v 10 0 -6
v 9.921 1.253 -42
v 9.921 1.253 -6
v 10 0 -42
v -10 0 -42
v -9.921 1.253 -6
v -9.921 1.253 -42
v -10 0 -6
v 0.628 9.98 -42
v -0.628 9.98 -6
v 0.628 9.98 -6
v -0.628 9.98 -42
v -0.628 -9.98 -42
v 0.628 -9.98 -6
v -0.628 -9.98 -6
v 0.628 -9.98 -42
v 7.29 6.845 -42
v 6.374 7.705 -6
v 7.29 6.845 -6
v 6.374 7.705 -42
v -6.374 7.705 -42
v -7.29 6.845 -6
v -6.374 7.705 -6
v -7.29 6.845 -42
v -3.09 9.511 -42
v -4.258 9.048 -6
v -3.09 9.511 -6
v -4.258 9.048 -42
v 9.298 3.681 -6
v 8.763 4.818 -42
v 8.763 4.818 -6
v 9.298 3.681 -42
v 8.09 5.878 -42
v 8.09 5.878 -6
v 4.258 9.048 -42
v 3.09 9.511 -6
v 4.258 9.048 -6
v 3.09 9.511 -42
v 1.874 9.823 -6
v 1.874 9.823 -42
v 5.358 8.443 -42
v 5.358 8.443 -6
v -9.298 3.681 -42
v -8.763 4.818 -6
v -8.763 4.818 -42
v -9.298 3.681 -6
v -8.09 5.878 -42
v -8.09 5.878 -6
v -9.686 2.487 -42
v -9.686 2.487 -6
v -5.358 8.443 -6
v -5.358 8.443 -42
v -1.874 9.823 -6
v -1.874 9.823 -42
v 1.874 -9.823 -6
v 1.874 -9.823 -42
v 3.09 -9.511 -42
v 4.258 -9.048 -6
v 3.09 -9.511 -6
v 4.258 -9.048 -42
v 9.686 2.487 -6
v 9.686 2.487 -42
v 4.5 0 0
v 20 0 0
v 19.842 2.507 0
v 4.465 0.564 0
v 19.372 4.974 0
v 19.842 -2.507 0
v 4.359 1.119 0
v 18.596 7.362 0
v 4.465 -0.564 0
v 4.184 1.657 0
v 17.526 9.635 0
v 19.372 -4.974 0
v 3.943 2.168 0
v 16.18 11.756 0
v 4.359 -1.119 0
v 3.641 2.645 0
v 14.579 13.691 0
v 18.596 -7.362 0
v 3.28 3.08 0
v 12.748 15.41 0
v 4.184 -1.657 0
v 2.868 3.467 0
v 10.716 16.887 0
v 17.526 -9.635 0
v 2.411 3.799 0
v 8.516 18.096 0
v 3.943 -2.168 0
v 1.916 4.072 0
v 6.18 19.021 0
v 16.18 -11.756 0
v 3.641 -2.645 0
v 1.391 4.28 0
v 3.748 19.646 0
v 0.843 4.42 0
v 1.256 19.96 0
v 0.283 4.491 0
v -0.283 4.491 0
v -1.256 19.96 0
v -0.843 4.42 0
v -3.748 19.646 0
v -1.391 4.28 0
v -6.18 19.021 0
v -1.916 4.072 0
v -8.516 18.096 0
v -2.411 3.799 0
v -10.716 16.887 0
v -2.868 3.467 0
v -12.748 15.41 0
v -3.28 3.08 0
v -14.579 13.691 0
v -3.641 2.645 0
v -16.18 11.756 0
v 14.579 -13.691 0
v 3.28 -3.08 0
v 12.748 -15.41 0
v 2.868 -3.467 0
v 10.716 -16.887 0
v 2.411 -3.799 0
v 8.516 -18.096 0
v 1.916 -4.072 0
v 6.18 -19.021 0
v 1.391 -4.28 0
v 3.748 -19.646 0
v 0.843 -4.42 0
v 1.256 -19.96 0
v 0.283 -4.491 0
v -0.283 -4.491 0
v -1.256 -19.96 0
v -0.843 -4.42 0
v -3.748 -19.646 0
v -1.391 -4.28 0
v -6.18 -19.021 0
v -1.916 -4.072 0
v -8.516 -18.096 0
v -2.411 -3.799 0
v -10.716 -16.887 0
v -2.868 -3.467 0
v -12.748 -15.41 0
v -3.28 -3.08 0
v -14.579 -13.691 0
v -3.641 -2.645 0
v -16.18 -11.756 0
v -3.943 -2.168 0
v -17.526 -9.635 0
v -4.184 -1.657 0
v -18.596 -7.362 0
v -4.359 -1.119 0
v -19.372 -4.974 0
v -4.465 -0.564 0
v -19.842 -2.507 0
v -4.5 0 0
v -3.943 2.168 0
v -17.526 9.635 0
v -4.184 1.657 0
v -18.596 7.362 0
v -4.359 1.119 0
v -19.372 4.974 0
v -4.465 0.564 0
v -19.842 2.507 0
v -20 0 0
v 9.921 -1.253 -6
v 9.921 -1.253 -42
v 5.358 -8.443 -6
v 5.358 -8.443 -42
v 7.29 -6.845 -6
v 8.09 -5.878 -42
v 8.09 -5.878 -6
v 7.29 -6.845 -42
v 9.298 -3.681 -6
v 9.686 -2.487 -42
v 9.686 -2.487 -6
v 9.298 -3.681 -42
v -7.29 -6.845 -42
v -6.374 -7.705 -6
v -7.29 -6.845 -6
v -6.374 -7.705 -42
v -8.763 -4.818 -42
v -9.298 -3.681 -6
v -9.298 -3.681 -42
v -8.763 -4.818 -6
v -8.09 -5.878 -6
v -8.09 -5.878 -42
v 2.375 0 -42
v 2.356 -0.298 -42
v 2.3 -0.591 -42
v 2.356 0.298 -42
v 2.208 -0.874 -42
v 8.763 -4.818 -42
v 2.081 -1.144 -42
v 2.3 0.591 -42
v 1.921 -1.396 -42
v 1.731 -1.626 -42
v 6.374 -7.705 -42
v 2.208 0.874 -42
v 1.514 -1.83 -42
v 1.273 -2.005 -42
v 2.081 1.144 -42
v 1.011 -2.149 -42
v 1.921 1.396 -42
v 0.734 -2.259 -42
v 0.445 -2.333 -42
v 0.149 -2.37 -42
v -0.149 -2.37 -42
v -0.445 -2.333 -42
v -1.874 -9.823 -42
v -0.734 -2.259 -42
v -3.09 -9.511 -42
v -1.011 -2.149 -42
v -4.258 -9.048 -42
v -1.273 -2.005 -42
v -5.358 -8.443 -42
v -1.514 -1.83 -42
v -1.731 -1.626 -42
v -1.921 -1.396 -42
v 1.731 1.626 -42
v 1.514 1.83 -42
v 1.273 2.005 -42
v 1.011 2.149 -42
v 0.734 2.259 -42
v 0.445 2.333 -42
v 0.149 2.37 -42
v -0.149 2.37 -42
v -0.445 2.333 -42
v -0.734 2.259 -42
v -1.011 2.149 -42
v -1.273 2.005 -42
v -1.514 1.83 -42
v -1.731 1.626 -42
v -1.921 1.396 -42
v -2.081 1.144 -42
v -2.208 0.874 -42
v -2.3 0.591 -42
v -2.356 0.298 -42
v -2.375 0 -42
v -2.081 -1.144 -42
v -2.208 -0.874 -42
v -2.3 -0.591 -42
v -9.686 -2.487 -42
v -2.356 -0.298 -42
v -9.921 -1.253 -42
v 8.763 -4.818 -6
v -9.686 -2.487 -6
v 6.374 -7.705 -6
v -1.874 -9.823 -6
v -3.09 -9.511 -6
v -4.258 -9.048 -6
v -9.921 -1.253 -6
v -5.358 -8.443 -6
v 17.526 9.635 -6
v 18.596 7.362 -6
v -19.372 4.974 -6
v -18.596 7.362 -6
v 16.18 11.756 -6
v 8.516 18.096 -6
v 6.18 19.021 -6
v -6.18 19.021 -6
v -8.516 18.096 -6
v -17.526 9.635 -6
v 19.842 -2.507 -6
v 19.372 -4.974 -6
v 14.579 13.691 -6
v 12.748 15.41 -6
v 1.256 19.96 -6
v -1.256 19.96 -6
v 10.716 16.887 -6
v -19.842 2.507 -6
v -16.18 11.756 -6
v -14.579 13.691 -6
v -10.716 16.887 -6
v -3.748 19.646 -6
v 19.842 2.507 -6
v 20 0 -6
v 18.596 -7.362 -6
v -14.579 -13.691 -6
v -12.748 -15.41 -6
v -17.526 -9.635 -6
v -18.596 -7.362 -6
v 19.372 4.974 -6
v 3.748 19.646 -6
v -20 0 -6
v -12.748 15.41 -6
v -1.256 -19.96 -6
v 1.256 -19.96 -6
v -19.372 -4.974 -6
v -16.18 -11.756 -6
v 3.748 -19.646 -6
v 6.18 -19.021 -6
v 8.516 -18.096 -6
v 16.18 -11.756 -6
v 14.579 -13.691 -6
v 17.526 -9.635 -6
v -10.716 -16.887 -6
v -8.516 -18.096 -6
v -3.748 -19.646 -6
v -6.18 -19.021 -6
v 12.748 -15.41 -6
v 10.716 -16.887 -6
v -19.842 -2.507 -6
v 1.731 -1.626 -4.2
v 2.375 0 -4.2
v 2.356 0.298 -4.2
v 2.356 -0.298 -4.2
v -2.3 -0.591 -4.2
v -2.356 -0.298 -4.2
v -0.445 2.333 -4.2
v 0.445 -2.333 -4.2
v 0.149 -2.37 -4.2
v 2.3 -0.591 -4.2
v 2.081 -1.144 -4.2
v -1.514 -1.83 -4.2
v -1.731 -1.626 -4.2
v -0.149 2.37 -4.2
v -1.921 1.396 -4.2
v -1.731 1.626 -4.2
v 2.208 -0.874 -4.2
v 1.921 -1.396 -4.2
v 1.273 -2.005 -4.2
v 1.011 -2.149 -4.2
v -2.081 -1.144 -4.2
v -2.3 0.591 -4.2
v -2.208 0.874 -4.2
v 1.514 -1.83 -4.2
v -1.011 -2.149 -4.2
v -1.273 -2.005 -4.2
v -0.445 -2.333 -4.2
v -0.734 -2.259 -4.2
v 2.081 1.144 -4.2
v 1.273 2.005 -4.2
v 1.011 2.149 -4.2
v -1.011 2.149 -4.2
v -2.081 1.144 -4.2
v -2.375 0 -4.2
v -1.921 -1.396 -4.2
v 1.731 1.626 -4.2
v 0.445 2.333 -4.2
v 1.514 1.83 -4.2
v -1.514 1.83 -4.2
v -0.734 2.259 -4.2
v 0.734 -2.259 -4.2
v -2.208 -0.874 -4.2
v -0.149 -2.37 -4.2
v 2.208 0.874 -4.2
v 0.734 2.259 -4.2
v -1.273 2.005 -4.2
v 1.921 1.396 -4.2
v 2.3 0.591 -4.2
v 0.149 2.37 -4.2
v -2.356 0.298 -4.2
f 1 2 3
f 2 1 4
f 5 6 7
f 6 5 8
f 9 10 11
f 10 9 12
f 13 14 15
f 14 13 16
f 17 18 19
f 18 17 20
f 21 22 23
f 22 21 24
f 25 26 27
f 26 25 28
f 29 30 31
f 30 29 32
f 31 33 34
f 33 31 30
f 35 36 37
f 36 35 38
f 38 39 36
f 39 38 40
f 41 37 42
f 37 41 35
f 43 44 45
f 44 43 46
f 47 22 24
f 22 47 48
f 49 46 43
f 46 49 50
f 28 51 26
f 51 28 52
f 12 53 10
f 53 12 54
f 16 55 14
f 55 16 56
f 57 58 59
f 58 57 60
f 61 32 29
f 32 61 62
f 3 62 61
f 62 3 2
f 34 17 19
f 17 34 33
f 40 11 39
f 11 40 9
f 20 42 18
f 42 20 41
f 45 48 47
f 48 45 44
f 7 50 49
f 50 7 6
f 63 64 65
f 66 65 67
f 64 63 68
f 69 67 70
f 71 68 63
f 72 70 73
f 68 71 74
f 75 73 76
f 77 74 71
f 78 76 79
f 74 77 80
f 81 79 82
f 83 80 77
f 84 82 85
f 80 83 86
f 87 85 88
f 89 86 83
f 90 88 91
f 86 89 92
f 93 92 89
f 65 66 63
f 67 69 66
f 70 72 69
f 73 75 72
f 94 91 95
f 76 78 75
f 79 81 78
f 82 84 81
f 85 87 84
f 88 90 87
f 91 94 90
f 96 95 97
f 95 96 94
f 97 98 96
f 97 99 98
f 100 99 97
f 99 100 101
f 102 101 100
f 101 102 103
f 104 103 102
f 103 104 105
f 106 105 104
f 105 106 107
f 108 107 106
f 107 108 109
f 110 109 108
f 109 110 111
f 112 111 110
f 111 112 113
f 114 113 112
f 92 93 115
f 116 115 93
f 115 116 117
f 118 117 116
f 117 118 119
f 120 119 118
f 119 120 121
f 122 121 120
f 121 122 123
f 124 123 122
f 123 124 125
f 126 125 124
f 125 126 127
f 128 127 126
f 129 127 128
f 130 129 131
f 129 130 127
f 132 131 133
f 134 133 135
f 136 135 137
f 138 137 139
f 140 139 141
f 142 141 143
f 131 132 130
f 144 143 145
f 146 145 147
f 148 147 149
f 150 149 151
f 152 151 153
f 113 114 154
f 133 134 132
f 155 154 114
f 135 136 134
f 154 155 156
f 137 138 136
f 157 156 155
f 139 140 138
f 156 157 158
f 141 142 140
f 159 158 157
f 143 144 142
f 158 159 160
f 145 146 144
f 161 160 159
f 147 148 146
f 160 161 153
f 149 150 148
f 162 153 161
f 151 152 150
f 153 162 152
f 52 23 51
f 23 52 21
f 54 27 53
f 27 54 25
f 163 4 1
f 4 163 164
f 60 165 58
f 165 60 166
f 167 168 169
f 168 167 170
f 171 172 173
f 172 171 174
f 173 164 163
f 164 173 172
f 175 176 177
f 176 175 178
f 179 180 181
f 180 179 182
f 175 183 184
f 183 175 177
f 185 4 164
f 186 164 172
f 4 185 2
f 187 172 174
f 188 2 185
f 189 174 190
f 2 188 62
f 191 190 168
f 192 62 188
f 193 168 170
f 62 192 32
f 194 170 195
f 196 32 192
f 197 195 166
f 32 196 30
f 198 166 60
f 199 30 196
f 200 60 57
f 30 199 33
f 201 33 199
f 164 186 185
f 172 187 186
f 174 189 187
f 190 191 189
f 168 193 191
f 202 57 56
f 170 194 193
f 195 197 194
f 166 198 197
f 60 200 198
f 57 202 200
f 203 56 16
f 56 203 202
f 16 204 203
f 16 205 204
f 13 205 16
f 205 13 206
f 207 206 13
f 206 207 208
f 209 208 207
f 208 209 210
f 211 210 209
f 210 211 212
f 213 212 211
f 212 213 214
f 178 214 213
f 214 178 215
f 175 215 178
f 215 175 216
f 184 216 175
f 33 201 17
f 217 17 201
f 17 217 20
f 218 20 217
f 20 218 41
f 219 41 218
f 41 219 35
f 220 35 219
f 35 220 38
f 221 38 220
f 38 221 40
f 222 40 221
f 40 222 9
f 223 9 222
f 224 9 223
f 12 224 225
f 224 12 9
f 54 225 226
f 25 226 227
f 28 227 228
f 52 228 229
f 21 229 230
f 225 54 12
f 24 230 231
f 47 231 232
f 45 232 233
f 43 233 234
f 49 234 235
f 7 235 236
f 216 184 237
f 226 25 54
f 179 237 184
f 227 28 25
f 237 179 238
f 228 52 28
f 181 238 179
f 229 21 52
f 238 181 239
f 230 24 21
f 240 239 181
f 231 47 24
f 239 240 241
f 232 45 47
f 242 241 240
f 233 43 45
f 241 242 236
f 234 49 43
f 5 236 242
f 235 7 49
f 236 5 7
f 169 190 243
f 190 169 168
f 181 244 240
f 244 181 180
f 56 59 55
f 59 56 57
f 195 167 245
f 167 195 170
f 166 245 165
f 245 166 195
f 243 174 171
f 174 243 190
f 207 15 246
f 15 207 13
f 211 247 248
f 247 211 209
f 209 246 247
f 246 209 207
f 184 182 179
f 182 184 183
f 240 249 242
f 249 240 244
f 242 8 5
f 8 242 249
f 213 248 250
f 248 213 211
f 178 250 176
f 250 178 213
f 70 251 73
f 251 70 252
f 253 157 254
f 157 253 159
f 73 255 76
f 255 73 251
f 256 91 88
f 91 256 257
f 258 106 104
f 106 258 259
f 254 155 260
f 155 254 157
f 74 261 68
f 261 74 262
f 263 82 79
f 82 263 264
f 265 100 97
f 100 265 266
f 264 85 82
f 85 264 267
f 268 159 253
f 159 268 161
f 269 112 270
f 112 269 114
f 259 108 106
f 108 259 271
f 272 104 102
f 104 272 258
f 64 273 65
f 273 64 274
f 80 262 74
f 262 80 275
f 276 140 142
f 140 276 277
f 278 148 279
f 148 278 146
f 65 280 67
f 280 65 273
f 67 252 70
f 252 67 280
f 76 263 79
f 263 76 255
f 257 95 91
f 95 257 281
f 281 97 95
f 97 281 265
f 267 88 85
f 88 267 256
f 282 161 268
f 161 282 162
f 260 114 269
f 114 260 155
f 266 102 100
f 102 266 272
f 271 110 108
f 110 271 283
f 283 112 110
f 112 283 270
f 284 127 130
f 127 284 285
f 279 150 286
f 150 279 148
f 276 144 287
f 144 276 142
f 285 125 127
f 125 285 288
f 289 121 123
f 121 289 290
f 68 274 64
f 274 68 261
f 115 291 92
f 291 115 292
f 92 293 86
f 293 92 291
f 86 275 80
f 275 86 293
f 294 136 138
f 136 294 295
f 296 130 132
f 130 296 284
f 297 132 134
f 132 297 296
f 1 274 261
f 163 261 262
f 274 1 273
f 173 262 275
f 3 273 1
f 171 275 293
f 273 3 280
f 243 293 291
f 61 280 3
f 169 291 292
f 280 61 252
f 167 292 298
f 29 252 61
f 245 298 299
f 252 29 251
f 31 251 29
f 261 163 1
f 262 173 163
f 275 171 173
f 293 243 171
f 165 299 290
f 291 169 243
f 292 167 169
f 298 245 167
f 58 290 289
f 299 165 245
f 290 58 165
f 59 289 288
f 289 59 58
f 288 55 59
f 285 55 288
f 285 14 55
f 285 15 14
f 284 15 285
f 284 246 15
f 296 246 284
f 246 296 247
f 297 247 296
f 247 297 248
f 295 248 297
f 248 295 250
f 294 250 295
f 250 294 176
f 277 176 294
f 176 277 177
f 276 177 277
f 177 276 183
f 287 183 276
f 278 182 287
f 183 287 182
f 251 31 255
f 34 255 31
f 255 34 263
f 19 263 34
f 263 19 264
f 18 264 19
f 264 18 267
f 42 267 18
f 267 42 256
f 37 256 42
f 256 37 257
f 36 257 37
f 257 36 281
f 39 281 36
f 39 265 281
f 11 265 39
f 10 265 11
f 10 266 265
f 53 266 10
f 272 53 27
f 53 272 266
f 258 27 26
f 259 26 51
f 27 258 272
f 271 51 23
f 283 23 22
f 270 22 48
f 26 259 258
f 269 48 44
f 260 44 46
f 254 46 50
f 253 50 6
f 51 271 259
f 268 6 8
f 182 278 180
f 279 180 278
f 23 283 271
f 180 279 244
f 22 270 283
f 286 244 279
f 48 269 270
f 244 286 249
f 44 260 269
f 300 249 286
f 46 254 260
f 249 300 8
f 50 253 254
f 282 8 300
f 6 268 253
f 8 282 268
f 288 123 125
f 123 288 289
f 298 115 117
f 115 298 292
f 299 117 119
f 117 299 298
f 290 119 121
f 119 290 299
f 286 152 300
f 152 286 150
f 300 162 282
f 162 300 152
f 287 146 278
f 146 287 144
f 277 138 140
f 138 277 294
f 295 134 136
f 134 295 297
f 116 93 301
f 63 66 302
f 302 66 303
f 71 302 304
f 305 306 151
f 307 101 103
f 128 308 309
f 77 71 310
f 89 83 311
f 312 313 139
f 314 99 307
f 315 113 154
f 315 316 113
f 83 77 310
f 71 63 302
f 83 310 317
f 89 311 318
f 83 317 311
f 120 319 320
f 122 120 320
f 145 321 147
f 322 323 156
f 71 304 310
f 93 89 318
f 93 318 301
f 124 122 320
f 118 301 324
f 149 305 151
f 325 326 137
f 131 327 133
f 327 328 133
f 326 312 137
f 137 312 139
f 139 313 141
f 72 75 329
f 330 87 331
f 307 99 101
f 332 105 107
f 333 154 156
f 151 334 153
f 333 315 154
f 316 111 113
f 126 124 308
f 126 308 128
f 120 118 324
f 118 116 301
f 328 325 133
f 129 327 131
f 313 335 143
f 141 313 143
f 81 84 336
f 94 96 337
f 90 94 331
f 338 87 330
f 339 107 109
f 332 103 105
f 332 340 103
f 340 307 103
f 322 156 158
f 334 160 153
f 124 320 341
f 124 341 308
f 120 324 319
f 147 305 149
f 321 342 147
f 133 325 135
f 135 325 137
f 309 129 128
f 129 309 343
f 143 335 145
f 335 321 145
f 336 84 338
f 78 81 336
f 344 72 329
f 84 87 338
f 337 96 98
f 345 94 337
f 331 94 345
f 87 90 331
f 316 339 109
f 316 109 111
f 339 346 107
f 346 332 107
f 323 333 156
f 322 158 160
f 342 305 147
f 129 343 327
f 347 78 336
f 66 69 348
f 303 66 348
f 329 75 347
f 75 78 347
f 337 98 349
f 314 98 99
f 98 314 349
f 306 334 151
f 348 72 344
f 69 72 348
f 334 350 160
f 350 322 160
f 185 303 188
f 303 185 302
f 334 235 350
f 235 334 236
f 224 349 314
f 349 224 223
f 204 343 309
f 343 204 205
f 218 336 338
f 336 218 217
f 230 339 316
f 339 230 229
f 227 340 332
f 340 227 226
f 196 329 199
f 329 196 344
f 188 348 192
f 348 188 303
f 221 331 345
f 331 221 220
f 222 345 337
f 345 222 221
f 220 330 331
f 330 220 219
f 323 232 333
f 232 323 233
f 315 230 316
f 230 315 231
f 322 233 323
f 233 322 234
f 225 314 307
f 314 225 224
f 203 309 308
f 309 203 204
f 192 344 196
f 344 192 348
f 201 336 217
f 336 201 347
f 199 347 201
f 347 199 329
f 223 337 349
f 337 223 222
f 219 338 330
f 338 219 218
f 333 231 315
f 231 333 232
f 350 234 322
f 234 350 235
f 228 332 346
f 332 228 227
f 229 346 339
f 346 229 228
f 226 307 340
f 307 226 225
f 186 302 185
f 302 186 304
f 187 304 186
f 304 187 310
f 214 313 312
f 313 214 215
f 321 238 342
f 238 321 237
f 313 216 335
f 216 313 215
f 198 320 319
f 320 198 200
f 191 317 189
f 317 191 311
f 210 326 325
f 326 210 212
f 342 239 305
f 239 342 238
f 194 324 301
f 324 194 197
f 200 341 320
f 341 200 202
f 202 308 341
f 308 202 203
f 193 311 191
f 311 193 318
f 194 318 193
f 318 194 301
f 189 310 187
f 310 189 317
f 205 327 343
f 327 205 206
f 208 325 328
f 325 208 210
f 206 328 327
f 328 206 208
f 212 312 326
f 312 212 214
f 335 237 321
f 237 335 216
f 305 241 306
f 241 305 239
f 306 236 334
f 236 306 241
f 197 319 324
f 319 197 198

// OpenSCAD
$fn = 50;


difference() {
	union() {
		translate(v = [0, 0, -42.0000000000]) {
			cylinder(h = 42, r = 10.0000000000);
		}
		translate(v = [0, 0, -6.0000000000]) {
			cylinder(h = 6, r = 20.0000000000);
		}
	}
	union() {
		translate(v = [0, 0, 0]) {
			rotate(a = [0, 0, 0]) {
				difference() {
					union() {
						#translate(v = [0, 0, -42.0000000000]) {
							cylinder(h = 42, r = 2.2500000000);
						}
						#translate(v = [0, 0, -4.2000000000]) {
							cylinder(h = 4.2000000000, r = 10.0000000000, r1 = 2.3750000000, r2 = 4.5000000000);
						}
						#translate(v = [0, 0, -42.0000000000]) {
							cylinder(h = 42, r = 2.3750000000);
						}
						#translate(v = [0, 0, -42.0000000000]) {
							cylinder(h = 42, r = 2.2500000000);
						}
					}
					union();
				}
			}
		}
	}
}
